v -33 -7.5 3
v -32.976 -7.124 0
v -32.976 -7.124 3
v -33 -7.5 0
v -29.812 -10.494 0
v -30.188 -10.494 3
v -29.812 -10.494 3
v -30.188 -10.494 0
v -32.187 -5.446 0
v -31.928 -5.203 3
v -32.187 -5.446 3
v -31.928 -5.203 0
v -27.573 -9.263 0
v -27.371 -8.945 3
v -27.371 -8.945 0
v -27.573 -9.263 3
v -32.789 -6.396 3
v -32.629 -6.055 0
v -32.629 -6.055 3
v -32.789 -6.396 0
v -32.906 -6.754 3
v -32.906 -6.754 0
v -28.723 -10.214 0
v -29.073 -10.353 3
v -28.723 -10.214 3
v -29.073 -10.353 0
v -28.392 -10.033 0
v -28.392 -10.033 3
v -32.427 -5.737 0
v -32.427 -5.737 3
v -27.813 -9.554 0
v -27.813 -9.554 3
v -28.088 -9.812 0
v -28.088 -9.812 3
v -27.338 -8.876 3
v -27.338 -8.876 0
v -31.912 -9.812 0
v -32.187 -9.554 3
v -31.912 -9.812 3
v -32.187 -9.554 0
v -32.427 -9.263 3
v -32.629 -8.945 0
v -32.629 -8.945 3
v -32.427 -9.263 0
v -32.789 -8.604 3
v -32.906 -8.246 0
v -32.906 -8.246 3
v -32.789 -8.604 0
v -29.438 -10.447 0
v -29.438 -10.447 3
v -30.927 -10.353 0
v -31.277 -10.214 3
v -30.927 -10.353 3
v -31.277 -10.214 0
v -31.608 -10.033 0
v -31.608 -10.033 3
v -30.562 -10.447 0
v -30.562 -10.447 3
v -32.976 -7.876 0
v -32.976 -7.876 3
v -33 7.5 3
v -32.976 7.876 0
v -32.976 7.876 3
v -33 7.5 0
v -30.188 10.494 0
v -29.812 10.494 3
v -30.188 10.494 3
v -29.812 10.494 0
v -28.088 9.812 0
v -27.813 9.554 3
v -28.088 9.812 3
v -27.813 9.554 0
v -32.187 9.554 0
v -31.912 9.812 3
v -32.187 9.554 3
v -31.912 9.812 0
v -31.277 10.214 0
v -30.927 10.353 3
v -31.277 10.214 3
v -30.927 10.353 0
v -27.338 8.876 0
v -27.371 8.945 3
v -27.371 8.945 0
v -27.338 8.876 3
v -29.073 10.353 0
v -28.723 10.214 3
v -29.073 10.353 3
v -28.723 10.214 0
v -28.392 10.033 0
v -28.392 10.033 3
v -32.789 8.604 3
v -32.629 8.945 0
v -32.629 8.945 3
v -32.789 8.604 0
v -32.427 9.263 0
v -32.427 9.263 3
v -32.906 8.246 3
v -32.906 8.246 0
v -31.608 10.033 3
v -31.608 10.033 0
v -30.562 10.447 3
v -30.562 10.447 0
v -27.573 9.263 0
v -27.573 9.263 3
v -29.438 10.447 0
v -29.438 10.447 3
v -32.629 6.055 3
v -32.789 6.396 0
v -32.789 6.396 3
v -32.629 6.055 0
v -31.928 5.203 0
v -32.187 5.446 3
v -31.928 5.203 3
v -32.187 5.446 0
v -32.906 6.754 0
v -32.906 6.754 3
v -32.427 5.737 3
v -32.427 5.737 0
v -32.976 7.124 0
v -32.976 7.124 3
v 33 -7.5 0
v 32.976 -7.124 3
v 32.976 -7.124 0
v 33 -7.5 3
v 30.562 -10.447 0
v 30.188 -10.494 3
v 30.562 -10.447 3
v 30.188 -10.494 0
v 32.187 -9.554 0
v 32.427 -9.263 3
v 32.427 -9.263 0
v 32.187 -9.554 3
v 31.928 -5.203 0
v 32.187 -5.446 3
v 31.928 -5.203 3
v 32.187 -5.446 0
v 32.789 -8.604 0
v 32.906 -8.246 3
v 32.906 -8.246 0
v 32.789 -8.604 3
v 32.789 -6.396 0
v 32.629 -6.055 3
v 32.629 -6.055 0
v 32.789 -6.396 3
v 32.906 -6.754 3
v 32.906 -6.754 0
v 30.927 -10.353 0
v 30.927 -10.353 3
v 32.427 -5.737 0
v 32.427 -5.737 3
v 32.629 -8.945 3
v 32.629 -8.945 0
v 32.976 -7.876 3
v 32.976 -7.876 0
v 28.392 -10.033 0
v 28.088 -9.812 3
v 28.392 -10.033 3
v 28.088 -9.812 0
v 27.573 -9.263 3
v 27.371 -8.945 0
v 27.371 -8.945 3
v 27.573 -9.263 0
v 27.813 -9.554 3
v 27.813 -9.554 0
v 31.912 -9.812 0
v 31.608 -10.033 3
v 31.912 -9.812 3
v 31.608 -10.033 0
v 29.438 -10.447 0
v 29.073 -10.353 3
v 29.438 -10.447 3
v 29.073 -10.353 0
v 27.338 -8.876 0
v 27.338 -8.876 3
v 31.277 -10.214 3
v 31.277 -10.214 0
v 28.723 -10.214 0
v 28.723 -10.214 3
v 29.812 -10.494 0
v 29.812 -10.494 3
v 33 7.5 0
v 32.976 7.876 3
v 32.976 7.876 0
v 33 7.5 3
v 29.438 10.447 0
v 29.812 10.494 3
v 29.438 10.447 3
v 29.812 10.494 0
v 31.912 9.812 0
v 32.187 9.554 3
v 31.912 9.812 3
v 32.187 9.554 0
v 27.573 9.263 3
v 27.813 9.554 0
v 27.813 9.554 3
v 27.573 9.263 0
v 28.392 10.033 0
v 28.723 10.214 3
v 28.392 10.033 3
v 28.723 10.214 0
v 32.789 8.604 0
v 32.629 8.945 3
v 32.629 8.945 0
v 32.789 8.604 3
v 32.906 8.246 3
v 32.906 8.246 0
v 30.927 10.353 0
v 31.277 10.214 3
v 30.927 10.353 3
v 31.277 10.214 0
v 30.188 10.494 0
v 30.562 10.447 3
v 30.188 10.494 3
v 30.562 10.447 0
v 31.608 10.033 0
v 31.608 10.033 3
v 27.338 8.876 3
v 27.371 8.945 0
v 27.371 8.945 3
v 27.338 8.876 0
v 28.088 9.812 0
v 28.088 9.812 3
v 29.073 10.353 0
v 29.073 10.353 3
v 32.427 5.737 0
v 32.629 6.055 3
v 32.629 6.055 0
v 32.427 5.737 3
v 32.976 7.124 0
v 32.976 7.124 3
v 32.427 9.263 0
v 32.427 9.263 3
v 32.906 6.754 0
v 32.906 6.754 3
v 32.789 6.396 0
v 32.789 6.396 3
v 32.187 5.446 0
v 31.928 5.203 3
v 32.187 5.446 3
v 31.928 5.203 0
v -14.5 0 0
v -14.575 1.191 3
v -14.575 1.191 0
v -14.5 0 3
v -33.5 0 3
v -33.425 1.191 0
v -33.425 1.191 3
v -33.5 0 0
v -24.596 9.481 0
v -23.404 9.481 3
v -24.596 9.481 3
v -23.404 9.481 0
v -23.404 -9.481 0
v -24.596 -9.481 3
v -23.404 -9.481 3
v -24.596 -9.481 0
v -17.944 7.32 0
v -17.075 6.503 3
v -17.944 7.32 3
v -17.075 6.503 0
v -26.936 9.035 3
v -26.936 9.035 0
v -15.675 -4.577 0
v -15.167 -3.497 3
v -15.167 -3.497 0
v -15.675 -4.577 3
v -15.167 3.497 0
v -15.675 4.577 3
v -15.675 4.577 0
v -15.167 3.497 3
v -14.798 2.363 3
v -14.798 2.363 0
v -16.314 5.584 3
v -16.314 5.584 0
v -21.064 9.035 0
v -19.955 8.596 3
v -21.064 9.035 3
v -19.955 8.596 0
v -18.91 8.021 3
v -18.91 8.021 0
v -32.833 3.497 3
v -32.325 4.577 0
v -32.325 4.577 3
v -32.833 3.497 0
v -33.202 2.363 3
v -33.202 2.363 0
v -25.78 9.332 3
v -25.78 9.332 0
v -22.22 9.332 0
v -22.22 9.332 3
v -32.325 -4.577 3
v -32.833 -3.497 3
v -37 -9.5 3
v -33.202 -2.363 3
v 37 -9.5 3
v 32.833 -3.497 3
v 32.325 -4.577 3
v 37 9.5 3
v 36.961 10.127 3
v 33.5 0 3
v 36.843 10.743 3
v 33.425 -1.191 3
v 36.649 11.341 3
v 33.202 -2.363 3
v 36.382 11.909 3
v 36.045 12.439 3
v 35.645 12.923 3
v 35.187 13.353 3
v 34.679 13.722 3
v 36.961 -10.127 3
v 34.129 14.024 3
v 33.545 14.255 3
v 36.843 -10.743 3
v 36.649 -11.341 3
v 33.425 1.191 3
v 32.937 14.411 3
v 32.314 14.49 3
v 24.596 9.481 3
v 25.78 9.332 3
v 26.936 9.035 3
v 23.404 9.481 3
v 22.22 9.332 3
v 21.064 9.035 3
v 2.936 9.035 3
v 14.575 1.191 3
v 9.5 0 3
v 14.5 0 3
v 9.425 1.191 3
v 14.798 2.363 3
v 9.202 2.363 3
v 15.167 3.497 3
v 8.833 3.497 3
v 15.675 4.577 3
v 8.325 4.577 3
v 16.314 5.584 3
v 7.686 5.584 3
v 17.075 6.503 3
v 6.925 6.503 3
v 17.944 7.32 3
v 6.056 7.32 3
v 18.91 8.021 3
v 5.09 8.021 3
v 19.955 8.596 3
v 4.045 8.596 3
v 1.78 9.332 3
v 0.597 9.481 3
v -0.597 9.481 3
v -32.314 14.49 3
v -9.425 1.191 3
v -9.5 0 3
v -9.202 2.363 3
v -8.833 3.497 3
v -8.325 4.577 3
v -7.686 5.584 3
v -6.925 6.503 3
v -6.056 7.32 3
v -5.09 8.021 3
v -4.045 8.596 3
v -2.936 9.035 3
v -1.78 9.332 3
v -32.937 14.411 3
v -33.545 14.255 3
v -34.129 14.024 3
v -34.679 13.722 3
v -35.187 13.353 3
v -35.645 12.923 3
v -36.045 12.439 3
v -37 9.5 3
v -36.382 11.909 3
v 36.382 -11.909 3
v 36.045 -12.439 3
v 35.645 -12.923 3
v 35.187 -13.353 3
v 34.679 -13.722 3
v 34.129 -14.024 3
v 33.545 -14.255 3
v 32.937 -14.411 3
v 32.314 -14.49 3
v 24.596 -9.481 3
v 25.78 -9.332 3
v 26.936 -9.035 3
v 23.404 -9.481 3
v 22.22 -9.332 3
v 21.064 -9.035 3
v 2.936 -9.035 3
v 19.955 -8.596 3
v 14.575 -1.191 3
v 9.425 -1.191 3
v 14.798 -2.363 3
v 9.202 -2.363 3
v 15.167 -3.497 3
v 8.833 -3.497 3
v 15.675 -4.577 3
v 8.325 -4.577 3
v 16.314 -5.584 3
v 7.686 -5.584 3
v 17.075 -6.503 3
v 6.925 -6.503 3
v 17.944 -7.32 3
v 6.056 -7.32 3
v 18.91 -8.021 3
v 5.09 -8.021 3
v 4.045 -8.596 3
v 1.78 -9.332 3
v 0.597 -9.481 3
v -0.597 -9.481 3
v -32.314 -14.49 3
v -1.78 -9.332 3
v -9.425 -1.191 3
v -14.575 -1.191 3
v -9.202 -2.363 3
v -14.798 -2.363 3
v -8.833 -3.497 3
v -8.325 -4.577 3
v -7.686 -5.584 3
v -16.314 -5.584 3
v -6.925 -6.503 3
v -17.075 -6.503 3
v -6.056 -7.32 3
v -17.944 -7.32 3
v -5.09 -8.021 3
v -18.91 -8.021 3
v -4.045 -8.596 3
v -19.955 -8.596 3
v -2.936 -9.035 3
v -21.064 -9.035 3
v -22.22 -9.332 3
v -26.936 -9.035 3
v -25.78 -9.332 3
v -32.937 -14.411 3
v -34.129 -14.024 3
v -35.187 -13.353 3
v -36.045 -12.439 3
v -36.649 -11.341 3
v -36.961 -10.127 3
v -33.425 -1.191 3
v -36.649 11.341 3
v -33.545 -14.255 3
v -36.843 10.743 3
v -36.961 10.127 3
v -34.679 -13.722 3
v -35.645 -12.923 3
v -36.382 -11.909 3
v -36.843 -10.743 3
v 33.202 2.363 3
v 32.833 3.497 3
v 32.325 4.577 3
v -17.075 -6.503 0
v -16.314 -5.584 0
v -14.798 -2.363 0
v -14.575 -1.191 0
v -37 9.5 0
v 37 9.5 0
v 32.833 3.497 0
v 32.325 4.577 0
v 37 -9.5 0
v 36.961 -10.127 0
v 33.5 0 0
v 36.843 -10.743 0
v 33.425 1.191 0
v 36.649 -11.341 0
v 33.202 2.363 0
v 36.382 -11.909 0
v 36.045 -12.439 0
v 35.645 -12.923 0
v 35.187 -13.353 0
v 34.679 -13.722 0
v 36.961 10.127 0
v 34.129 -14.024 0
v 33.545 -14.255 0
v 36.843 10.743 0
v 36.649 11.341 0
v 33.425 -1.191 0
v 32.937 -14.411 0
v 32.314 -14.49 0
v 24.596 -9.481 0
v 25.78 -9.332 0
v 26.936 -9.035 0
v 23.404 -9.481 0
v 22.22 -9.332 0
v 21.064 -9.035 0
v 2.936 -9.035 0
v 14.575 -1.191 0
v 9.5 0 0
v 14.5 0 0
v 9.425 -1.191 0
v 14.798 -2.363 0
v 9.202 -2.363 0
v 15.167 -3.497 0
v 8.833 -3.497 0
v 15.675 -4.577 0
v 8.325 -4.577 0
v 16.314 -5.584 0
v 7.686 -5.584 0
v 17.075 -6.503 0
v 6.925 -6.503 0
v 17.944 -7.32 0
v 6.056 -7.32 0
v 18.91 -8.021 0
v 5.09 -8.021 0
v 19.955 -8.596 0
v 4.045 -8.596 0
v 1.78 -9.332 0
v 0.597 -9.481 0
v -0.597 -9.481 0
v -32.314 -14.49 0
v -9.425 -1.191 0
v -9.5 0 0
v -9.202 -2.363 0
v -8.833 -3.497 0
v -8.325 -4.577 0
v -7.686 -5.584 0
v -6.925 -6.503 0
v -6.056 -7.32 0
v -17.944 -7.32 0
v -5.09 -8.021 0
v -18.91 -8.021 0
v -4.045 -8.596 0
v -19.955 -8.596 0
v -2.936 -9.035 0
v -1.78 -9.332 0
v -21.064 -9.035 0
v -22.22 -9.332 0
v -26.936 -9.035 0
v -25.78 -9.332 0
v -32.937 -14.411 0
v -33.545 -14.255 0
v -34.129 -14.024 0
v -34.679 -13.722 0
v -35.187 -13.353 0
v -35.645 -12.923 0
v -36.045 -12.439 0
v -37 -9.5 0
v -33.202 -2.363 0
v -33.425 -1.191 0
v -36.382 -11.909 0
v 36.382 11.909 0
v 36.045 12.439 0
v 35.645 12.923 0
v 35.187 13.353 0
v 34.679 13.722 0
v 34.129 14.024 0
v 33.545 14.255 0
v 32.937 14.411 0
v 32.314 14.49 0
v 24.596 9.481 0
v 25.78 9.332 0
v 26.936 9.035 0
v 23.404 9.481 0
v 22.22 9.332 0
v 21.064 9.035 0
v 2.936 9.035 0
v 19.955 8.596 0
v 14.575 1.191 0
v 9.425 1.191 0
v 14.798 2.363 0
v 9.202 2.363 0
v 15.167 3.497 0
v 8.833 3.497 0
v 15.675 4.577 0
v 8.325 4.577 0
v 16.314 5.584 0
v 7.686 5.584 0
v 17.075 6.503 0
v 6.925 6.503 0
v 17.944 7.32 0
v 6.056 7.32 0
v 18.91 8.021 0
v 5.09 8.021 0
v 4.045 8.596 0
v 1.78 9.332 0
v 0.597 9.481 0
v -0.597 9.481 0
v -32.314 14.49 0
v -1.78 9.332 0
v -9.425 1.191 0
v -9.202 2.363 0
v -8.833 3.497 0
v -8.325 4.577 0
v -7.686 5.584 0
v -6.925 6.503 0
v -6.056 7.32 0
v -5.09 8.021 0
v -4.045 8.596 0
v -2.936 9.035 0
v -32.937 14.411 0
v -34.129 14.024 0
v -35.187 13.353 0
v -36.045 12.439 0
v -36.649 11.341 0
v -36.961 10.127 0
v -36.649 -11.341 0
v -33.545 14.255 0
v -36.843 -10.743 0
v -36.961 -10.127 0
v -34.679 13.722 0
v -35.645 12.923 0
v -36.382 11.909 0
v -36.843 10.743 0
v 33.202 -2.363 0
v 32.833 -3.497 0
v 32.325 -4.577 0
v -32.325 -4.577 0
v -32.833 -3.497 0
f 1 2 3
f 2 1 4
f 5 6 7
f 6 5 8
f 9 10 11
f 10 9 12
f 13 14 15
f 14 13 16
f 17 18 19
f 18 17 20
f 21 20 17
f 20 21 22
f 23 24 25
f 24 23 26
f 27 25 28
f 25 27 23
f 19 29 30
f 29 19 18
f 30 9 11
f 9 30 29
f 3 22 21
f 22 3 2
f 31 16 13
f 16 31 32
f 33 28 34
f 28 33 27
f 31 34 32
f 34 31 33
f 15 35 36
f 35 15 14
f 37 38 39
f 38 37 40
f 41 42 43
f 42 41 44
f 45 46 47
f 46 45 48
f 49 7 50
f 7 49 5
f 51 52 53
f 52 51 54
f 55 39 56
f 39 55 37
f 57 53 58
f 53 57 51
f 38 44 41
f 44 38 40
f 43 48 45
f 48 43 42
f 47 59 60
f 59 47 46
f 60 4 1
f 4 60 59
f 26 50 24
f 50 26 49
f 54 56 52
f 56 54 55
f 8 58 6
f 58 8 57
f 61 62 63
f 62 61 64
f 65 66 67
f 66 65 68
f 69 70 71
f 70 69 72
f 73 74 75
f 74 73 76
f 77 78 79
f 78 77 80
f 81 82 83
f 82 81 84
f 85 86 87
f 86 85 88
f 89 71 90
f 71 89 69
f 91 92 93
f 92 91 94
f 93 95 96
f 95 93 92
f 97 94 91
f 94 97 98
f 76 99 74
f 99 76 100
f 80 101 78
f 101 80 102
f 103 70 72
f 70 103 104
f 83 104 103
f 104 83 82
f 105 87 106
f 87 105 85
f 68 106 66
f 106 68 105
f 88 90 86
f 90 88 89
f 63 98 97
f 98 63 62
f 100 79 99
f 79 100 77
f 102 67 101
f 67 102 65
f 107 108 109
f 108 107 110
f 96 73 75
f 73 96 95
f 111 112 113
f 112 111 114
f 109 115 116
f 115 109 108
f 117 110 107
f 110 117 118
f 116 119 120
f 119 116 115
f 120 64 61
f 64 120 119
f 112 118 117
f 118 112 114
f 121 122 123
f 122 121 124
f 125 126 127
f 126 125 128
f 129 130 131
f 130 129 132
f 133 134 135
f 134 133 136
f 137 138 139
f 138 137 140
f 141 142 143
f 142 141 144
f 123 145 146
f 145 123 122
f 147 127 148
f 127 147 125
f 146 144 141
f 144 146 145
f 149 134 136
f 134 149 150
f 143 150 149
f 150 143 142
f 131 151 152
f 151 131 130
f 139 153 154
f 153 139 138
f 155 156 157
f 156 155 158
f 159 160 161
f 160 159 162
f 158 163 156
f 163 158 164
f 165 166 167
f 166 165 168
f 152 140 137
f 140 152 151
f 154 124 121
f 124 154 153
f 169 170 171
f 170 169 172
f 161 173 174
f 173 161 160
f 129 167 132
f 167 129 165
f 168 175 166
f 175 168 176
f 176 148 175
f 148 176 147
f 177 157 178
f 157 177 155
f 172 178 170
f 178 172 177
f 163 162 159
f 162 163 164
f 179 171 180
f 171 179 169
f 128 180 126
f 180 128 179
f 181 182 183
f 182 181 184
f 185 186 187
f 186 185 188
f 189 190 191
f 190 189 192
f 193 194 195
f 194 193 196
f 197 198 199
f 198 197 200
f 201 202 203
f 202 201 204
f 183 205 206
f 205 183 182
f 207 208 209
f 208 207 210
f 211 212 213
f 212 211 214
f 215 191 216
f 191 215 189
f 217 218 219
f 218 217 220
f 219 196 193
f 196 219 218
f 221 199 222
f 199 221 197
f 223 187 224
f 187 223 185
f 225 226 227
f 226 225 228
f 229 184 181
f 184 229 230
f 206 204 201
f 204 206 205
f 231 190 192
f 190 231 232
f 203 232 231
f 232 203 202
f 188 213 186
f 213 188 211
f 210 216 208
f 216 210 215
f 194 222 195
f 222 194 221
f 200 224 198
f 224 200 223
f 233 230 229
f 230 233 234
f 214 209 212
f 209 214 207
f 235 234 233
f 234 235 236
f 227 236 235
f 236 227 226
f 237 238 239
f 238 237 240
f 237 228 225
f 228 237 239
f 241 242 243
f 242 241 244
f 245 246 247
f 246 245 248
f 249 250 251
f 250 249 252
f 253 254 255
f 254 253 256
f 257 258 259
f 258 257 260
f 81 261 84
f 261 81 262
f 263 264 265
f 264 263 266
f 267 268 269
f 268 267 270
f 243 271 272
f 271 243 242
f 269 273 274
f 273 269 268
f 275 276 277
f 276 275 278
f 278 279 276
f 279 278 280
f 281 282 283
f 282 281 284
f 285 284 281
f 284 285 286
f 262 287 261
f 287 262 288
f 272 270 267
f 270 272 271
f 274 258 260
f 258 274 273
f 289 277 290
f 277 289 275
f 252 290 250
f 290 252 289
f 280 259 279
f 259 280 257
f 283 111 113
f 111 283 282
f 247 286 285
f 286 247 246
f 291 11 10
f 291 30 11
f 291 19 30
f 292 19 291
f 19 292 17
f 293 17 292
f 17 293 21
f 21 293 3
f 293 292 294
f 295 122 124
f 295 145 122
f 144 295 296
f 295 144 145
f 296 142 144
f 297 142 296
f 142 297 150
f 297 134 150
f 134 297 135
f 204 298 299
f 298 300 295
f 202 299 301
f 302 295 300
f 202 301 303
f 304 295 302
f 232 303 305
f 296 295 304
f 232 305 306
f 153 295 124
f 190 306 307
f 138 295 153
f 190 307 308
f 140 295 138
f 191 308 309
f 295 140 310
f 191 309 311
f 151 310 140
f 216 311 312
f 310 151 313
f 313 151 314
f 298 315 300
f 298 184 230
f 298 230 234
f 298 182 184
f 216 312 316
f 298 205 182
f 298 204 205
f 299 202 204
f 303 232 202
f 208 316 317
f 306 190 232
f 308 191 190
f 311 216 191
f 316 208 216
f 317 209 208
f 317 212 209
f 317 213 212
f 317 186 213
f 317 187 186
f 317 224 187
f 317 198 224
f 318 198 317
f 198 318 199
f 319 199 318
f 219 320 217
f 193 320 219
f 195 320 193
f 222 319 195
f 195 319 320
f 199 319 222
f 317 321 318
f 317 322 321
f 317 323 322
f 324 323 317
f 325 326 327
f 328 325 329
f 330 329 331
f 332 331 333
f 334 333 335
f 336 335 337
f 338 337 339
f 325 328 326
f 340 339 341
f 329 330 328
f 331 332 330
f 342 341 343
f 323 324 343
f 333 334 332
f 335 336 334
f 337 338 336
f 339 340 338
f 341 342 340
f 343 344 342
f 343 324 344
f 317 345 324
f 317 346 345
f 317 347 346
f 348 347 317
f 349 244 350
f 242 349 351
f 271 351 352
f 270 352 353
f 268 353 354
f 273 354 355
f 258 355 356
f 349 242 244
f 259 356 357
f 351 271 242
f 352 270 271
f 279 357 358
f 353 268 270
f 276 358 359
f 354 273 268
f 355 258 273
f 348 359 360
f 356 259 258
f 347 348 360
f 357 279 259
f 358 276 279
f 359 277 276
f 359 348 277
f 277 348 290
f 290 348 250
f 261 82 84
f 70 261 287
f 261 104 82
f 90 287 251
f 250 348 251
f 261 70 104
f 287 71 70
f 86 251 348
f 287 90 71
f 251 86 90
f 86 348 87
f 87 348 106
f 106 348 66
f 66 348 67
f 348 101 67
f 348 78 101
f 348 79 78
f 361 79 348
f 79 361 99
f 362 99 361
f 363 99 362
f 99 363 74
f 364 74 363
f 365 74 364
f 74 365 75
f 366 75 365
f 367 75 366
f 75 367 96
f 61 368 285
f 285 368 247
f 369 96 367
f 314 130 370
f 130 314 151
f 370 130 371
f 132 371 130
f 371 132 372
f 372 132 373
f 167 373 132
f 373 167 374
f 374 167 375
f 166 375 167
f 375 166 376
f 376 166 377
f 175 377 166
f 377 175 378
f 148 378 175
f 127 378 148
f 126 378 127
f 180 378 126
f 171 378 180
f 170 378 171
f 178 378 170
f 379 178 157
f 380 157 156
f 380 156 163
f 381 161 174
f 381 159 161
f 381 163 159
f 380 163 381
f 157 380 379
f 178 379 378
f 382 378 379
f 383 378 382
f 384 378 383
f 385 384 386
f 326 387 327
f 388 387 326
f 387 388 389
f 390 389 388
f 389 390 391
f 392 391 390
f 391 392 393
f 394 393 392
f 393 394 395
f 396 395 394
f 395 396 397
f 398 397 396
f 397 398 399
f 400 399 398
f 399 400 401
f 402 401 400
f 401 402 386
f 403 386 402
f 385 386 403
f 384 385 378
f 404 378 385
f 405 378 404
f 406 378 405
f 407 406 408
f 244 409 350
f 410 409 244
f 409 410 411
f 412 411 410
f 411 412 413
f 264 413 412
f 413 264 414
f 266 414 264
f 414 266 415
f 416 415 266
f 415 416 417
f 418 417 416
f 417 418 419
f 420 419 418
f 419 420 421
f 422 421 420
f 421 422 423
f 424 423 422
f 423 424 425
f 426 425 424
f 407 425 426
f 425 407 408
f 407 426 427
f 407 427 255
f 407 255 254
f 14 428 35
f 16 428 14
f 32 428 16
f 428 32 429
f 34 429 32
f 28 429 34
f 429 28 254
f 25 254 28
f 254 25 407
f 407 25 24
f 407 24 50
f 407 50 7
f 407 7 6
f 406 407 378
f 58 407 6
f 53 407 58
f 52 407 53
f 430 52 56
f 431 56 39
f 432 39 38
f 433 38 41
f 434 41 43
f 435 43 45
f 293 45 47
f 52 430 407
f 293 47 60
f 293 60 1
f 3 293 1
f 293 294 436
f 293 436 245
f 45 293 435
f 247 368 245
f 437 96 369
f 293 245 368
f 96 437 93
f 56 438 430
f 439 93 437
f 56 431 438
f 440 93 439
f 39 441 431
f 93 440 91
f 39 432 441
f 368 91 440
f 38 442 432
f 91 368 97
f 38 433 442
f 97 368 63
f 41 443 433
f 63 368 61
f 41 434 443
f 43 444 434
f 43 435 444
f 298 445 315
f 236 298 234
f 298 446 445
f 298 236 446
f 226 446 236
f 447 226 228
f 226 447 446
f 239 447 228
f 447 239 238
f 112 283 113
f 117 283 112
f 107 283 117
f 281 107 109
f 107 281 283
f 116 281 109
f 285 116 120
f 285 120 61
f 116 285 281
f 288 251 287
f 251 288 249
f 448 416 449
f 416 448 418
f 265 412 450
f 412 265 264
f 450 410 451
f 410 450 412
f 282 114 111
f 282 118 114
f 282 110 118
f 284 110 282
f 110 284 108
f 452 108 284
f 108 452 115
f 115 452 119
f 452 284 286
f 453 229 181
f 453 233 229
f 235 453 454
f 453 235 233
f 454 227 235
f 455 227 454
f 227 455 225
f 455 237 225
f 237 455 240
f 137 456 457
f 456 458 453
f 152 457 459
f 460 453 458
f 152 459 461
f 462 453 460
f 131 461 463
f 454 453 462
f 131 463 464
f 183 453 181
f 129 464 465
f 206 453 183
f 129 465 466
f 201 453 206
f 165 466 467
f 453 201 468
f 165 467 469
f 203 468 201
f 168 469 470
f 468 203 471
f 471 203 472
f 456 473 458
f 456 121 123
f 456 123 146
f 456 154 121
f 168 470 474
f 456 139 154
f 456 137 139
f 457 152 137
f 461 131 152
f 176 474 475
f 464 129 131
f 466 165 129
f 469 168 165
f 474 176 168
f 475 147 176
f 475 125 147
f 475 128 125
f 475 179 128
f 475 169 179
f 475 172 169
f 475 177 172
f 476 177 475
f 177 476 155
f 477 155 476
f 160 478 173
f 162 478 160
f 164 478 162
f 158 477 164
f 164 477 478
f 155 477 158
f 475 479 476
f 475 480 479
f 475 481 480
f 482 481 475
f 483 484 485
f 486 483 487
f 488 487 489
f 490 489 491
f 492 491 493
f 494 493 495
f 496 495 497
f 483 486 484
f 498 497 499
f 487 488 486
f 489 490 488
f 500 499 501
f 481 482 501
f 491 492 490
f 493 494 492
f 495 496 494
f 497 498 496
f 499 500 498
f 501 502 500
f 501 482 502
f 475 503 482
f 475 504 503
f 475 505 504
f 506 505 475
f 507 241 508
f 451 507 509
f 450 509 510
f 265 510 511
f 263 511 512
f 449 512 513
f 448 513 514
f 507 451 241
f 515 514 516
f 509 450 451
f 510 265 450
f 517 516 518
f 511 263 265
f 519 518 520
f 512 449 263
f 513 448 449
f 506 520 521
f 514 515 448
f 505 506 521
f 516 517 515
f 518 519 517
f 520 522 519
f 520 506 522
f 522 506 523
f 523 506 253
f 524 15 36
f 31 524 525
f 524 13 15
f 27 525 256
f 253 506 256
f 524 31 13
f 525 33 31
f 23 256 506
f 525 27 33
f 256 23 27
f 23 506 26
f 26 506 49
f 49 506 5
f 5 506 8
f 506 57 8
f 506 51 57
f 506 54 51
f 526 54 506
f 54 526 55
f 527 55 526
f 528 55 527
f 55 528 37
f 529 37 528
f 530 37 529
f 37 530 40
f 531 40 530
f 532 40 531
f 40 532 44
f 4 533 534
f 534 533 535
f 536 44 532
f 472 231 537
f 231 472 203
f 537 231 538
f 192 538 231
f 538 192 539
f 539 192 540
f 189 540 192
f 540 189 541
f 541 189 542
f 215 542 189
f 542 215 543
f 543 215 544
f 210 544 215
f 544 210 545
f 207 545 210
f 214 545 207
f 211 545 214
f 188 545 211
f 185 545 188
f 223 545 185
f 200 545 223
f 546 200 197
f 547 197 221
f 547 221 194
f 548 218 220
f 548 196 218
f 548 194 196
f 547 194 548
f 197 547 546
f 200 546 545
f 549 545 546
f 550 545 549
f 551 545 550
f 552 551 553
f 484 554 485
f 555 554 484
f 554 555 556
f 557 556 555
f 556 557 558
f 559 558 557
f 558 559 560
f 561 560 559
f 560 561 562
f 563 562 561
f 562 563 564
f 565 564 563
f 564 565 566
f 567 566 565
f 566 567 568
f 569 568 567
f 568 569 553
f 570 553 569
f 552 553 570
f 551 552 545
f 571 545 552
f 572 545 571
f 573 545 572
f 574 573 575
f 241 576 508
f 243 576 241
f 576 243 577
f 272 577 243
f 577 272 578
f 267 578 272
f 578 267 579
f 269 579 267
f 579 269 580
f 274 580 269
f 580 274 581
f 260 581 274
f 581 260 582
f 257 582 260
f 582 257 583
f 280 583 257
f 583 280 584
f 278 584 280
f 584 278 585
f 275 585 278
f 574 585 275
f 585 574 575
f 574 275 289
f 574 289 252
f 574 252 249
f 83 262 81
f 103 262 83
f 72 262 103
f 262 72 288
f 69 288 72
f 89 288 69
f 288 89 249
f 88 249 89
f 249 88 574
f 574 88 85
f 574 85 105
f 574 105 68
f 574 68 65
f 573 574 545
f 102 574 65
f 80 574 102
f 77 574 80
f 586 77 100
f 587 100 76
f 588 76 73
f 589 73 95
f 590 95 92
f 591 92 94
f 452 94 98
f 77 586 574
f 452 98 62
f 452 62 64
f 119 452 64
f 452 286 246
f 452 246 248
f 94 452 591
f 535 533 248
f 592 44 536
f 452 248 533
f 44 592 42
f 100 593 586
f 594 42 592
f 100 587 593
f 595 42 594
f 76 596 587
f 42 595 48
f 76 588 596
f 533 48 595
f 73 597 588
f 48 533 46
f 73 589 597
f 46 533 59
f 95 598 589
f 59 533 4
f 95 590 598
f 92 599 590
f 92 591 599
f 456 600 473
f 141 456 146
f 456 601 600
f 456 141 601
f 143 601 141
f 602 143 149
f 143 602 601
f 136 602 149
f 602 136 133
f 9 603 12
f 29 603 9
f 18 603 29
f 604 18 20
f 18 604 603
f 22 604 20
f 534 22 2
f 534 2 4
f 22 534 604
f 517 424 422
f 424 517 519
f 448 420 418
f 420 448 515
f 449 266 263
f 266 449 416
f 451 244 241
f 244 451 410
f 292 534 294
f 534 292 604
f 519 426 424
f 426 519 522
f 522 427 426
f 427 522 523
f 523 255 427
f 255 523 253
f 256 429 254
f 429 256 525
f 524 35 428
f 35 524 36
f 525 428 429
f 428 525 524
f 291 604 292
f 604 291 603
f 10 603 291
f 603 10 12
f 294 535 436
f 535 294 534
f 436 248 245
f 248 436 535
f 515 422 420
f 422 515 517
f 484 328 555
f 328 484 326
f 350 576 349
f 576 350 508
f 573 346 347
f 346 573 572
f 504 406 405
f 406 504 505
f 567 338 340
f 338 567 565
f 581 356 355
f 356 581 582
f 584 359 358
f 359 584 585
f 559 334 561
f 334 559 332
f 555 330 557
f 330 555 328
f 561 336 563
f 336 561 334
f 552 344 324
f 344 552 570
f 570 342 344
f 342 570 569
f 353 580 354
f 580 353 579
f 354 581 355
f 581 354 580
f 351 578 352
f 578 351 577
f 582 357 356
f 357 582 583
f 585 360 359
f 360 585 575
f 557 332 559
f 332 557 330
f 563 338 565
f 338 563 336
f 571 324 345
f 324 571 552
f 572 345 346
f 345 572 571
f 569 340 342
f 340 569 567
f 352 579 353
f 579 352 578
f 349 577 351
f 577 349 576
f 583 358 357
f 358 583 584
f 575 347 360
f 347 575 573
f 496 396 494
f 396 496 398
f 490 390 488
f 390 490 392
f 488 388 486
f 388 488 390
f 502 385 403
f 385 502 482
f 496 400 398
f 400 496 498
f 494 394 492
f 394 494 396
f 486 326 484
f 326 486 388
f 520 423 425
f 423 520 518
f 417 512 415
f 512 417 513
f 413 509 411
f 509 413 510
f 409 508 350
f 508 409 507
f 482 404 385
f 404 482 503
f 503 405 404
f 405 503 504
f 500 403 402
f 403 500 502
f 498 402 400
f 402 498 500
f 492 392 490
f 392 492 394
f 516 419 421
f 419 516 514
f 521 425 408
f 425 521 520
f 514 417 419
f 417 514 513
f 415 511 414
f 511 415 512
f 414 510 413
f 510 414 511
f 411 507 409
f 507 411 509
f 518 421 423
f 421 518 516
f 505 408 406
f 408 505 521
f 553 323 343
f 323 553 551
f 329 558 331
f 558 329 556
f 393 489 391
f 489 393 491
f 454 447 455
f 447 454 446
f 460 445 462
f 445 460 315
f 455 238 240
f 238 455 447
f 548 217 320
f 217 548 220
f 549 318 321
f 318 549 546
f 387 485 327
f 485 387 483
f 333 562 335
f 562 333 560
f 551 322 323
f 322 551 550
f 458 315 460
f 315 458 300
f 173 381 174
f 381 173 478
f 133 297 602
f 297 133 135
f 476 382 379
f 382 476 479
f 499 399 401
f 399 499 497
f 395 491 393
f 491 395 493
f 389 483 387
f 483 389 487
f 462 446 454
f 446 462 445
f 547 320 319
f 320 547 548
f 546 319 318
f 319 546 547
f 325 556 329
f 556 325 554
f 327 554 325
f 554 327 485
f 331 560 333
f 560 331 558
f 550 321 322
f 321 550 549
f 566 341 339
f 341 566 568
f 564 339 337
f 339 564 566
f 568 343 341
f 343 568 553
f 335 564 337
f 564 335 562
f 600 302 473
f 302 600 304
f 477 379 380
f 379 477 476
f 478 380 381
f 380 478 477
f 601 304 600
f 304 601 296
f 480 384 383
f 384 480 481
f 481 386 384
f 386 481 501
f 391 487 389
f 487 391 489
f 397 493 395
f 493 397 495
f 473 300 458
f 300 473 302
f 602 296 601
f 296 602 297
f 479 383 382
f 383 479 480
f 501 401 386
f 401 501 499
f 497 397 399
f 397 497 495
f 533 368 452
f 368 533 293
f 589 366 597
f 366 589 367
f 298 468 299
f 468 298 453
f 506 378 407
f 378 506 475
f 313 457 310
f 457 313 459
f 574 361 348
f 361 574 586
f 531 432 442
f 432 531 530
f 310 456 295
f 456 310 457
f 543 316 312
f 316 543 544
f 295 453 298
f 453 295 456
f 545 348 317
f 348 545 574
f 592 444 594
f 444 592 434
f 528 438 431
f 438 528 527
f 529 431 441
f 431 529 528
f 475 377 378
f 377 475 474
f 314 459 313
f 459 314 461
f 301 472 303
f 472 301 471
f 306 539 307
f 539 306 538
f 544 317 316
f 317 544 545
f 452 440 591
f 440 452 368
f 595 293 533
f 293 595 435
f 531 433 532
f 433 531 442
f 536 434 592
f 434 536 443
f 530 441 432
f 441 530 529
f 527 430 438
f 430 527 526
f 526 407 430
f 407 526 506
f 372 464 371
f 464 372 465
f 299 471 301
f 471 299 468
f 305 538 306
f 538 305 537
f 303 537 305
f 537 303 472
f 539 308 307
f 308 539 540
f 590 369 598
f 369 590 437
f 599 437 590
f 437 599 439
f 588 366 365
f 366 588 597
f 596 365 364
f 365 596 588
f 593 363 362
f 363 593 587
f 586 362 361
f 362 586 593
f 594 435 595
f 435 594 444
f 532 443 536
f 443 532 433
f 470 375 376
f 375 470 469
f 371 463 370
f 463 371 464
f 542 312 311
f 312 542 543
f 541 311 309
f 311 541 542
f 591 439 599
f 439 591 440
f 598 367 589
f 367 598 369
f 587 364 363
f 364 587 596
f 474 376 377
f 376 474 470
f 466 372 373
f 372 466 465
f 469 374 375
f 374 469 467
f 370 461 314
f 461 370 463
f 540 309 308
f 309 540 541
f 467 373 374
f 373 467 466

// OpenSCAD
$fn = 50;


difference() {
	union() {
		hull() {
			translate(v = [-32.0000000000, 9.5000000000, 0]) {
				cylinder(h = 3, r = 5);
			}
			translate(v = [32.0000000000, 9.5000000000, 0]) {
				cylinder(h = 3, r = 5);
			}
			translate(v = [-32.0000000000, -9.5000000000, 0]) {
				cylinder(h = 3, r = 5);
			}
			translate(v = [32.0000000000, -9.5000000000, 0]) {
				cylinder(h = 3, r = 5);
			}
		}
	}
	union() {
		#translate(v = [-30.0000000000, -7.5000000000, -100.0000000000]) {
			cylinder(h = 200, r = 3.0000000000);
		}
		#translate(v = [-30.0000000000, 7.5000000000, -100.0000000000]) {
			cylinder(h = 200, r = 3.0000000000);
		}
		#translate(v = [30.0000000000, -7.5000000000, -100.0000000000]) {
			cylinder(h = 200, r = 3.0000000000);
		}
		#translate(v = [30.0000000000, 7.5000000000, -100.0000000000]) {
			cylinder(h = 200, r = 3.0000000000);
		}
		#translate(v = [-24.0000000000, 0, 0]) {
			cylinder(h = 3, r = 9.5000000000);
		}
		#cylinder(h = 3, r = 9.5000000000);
		#translate(v = [24.0000000000, 0, 0]) {
			cylinder(h = 3, r = 9.5000000000);
		}
	}
}
